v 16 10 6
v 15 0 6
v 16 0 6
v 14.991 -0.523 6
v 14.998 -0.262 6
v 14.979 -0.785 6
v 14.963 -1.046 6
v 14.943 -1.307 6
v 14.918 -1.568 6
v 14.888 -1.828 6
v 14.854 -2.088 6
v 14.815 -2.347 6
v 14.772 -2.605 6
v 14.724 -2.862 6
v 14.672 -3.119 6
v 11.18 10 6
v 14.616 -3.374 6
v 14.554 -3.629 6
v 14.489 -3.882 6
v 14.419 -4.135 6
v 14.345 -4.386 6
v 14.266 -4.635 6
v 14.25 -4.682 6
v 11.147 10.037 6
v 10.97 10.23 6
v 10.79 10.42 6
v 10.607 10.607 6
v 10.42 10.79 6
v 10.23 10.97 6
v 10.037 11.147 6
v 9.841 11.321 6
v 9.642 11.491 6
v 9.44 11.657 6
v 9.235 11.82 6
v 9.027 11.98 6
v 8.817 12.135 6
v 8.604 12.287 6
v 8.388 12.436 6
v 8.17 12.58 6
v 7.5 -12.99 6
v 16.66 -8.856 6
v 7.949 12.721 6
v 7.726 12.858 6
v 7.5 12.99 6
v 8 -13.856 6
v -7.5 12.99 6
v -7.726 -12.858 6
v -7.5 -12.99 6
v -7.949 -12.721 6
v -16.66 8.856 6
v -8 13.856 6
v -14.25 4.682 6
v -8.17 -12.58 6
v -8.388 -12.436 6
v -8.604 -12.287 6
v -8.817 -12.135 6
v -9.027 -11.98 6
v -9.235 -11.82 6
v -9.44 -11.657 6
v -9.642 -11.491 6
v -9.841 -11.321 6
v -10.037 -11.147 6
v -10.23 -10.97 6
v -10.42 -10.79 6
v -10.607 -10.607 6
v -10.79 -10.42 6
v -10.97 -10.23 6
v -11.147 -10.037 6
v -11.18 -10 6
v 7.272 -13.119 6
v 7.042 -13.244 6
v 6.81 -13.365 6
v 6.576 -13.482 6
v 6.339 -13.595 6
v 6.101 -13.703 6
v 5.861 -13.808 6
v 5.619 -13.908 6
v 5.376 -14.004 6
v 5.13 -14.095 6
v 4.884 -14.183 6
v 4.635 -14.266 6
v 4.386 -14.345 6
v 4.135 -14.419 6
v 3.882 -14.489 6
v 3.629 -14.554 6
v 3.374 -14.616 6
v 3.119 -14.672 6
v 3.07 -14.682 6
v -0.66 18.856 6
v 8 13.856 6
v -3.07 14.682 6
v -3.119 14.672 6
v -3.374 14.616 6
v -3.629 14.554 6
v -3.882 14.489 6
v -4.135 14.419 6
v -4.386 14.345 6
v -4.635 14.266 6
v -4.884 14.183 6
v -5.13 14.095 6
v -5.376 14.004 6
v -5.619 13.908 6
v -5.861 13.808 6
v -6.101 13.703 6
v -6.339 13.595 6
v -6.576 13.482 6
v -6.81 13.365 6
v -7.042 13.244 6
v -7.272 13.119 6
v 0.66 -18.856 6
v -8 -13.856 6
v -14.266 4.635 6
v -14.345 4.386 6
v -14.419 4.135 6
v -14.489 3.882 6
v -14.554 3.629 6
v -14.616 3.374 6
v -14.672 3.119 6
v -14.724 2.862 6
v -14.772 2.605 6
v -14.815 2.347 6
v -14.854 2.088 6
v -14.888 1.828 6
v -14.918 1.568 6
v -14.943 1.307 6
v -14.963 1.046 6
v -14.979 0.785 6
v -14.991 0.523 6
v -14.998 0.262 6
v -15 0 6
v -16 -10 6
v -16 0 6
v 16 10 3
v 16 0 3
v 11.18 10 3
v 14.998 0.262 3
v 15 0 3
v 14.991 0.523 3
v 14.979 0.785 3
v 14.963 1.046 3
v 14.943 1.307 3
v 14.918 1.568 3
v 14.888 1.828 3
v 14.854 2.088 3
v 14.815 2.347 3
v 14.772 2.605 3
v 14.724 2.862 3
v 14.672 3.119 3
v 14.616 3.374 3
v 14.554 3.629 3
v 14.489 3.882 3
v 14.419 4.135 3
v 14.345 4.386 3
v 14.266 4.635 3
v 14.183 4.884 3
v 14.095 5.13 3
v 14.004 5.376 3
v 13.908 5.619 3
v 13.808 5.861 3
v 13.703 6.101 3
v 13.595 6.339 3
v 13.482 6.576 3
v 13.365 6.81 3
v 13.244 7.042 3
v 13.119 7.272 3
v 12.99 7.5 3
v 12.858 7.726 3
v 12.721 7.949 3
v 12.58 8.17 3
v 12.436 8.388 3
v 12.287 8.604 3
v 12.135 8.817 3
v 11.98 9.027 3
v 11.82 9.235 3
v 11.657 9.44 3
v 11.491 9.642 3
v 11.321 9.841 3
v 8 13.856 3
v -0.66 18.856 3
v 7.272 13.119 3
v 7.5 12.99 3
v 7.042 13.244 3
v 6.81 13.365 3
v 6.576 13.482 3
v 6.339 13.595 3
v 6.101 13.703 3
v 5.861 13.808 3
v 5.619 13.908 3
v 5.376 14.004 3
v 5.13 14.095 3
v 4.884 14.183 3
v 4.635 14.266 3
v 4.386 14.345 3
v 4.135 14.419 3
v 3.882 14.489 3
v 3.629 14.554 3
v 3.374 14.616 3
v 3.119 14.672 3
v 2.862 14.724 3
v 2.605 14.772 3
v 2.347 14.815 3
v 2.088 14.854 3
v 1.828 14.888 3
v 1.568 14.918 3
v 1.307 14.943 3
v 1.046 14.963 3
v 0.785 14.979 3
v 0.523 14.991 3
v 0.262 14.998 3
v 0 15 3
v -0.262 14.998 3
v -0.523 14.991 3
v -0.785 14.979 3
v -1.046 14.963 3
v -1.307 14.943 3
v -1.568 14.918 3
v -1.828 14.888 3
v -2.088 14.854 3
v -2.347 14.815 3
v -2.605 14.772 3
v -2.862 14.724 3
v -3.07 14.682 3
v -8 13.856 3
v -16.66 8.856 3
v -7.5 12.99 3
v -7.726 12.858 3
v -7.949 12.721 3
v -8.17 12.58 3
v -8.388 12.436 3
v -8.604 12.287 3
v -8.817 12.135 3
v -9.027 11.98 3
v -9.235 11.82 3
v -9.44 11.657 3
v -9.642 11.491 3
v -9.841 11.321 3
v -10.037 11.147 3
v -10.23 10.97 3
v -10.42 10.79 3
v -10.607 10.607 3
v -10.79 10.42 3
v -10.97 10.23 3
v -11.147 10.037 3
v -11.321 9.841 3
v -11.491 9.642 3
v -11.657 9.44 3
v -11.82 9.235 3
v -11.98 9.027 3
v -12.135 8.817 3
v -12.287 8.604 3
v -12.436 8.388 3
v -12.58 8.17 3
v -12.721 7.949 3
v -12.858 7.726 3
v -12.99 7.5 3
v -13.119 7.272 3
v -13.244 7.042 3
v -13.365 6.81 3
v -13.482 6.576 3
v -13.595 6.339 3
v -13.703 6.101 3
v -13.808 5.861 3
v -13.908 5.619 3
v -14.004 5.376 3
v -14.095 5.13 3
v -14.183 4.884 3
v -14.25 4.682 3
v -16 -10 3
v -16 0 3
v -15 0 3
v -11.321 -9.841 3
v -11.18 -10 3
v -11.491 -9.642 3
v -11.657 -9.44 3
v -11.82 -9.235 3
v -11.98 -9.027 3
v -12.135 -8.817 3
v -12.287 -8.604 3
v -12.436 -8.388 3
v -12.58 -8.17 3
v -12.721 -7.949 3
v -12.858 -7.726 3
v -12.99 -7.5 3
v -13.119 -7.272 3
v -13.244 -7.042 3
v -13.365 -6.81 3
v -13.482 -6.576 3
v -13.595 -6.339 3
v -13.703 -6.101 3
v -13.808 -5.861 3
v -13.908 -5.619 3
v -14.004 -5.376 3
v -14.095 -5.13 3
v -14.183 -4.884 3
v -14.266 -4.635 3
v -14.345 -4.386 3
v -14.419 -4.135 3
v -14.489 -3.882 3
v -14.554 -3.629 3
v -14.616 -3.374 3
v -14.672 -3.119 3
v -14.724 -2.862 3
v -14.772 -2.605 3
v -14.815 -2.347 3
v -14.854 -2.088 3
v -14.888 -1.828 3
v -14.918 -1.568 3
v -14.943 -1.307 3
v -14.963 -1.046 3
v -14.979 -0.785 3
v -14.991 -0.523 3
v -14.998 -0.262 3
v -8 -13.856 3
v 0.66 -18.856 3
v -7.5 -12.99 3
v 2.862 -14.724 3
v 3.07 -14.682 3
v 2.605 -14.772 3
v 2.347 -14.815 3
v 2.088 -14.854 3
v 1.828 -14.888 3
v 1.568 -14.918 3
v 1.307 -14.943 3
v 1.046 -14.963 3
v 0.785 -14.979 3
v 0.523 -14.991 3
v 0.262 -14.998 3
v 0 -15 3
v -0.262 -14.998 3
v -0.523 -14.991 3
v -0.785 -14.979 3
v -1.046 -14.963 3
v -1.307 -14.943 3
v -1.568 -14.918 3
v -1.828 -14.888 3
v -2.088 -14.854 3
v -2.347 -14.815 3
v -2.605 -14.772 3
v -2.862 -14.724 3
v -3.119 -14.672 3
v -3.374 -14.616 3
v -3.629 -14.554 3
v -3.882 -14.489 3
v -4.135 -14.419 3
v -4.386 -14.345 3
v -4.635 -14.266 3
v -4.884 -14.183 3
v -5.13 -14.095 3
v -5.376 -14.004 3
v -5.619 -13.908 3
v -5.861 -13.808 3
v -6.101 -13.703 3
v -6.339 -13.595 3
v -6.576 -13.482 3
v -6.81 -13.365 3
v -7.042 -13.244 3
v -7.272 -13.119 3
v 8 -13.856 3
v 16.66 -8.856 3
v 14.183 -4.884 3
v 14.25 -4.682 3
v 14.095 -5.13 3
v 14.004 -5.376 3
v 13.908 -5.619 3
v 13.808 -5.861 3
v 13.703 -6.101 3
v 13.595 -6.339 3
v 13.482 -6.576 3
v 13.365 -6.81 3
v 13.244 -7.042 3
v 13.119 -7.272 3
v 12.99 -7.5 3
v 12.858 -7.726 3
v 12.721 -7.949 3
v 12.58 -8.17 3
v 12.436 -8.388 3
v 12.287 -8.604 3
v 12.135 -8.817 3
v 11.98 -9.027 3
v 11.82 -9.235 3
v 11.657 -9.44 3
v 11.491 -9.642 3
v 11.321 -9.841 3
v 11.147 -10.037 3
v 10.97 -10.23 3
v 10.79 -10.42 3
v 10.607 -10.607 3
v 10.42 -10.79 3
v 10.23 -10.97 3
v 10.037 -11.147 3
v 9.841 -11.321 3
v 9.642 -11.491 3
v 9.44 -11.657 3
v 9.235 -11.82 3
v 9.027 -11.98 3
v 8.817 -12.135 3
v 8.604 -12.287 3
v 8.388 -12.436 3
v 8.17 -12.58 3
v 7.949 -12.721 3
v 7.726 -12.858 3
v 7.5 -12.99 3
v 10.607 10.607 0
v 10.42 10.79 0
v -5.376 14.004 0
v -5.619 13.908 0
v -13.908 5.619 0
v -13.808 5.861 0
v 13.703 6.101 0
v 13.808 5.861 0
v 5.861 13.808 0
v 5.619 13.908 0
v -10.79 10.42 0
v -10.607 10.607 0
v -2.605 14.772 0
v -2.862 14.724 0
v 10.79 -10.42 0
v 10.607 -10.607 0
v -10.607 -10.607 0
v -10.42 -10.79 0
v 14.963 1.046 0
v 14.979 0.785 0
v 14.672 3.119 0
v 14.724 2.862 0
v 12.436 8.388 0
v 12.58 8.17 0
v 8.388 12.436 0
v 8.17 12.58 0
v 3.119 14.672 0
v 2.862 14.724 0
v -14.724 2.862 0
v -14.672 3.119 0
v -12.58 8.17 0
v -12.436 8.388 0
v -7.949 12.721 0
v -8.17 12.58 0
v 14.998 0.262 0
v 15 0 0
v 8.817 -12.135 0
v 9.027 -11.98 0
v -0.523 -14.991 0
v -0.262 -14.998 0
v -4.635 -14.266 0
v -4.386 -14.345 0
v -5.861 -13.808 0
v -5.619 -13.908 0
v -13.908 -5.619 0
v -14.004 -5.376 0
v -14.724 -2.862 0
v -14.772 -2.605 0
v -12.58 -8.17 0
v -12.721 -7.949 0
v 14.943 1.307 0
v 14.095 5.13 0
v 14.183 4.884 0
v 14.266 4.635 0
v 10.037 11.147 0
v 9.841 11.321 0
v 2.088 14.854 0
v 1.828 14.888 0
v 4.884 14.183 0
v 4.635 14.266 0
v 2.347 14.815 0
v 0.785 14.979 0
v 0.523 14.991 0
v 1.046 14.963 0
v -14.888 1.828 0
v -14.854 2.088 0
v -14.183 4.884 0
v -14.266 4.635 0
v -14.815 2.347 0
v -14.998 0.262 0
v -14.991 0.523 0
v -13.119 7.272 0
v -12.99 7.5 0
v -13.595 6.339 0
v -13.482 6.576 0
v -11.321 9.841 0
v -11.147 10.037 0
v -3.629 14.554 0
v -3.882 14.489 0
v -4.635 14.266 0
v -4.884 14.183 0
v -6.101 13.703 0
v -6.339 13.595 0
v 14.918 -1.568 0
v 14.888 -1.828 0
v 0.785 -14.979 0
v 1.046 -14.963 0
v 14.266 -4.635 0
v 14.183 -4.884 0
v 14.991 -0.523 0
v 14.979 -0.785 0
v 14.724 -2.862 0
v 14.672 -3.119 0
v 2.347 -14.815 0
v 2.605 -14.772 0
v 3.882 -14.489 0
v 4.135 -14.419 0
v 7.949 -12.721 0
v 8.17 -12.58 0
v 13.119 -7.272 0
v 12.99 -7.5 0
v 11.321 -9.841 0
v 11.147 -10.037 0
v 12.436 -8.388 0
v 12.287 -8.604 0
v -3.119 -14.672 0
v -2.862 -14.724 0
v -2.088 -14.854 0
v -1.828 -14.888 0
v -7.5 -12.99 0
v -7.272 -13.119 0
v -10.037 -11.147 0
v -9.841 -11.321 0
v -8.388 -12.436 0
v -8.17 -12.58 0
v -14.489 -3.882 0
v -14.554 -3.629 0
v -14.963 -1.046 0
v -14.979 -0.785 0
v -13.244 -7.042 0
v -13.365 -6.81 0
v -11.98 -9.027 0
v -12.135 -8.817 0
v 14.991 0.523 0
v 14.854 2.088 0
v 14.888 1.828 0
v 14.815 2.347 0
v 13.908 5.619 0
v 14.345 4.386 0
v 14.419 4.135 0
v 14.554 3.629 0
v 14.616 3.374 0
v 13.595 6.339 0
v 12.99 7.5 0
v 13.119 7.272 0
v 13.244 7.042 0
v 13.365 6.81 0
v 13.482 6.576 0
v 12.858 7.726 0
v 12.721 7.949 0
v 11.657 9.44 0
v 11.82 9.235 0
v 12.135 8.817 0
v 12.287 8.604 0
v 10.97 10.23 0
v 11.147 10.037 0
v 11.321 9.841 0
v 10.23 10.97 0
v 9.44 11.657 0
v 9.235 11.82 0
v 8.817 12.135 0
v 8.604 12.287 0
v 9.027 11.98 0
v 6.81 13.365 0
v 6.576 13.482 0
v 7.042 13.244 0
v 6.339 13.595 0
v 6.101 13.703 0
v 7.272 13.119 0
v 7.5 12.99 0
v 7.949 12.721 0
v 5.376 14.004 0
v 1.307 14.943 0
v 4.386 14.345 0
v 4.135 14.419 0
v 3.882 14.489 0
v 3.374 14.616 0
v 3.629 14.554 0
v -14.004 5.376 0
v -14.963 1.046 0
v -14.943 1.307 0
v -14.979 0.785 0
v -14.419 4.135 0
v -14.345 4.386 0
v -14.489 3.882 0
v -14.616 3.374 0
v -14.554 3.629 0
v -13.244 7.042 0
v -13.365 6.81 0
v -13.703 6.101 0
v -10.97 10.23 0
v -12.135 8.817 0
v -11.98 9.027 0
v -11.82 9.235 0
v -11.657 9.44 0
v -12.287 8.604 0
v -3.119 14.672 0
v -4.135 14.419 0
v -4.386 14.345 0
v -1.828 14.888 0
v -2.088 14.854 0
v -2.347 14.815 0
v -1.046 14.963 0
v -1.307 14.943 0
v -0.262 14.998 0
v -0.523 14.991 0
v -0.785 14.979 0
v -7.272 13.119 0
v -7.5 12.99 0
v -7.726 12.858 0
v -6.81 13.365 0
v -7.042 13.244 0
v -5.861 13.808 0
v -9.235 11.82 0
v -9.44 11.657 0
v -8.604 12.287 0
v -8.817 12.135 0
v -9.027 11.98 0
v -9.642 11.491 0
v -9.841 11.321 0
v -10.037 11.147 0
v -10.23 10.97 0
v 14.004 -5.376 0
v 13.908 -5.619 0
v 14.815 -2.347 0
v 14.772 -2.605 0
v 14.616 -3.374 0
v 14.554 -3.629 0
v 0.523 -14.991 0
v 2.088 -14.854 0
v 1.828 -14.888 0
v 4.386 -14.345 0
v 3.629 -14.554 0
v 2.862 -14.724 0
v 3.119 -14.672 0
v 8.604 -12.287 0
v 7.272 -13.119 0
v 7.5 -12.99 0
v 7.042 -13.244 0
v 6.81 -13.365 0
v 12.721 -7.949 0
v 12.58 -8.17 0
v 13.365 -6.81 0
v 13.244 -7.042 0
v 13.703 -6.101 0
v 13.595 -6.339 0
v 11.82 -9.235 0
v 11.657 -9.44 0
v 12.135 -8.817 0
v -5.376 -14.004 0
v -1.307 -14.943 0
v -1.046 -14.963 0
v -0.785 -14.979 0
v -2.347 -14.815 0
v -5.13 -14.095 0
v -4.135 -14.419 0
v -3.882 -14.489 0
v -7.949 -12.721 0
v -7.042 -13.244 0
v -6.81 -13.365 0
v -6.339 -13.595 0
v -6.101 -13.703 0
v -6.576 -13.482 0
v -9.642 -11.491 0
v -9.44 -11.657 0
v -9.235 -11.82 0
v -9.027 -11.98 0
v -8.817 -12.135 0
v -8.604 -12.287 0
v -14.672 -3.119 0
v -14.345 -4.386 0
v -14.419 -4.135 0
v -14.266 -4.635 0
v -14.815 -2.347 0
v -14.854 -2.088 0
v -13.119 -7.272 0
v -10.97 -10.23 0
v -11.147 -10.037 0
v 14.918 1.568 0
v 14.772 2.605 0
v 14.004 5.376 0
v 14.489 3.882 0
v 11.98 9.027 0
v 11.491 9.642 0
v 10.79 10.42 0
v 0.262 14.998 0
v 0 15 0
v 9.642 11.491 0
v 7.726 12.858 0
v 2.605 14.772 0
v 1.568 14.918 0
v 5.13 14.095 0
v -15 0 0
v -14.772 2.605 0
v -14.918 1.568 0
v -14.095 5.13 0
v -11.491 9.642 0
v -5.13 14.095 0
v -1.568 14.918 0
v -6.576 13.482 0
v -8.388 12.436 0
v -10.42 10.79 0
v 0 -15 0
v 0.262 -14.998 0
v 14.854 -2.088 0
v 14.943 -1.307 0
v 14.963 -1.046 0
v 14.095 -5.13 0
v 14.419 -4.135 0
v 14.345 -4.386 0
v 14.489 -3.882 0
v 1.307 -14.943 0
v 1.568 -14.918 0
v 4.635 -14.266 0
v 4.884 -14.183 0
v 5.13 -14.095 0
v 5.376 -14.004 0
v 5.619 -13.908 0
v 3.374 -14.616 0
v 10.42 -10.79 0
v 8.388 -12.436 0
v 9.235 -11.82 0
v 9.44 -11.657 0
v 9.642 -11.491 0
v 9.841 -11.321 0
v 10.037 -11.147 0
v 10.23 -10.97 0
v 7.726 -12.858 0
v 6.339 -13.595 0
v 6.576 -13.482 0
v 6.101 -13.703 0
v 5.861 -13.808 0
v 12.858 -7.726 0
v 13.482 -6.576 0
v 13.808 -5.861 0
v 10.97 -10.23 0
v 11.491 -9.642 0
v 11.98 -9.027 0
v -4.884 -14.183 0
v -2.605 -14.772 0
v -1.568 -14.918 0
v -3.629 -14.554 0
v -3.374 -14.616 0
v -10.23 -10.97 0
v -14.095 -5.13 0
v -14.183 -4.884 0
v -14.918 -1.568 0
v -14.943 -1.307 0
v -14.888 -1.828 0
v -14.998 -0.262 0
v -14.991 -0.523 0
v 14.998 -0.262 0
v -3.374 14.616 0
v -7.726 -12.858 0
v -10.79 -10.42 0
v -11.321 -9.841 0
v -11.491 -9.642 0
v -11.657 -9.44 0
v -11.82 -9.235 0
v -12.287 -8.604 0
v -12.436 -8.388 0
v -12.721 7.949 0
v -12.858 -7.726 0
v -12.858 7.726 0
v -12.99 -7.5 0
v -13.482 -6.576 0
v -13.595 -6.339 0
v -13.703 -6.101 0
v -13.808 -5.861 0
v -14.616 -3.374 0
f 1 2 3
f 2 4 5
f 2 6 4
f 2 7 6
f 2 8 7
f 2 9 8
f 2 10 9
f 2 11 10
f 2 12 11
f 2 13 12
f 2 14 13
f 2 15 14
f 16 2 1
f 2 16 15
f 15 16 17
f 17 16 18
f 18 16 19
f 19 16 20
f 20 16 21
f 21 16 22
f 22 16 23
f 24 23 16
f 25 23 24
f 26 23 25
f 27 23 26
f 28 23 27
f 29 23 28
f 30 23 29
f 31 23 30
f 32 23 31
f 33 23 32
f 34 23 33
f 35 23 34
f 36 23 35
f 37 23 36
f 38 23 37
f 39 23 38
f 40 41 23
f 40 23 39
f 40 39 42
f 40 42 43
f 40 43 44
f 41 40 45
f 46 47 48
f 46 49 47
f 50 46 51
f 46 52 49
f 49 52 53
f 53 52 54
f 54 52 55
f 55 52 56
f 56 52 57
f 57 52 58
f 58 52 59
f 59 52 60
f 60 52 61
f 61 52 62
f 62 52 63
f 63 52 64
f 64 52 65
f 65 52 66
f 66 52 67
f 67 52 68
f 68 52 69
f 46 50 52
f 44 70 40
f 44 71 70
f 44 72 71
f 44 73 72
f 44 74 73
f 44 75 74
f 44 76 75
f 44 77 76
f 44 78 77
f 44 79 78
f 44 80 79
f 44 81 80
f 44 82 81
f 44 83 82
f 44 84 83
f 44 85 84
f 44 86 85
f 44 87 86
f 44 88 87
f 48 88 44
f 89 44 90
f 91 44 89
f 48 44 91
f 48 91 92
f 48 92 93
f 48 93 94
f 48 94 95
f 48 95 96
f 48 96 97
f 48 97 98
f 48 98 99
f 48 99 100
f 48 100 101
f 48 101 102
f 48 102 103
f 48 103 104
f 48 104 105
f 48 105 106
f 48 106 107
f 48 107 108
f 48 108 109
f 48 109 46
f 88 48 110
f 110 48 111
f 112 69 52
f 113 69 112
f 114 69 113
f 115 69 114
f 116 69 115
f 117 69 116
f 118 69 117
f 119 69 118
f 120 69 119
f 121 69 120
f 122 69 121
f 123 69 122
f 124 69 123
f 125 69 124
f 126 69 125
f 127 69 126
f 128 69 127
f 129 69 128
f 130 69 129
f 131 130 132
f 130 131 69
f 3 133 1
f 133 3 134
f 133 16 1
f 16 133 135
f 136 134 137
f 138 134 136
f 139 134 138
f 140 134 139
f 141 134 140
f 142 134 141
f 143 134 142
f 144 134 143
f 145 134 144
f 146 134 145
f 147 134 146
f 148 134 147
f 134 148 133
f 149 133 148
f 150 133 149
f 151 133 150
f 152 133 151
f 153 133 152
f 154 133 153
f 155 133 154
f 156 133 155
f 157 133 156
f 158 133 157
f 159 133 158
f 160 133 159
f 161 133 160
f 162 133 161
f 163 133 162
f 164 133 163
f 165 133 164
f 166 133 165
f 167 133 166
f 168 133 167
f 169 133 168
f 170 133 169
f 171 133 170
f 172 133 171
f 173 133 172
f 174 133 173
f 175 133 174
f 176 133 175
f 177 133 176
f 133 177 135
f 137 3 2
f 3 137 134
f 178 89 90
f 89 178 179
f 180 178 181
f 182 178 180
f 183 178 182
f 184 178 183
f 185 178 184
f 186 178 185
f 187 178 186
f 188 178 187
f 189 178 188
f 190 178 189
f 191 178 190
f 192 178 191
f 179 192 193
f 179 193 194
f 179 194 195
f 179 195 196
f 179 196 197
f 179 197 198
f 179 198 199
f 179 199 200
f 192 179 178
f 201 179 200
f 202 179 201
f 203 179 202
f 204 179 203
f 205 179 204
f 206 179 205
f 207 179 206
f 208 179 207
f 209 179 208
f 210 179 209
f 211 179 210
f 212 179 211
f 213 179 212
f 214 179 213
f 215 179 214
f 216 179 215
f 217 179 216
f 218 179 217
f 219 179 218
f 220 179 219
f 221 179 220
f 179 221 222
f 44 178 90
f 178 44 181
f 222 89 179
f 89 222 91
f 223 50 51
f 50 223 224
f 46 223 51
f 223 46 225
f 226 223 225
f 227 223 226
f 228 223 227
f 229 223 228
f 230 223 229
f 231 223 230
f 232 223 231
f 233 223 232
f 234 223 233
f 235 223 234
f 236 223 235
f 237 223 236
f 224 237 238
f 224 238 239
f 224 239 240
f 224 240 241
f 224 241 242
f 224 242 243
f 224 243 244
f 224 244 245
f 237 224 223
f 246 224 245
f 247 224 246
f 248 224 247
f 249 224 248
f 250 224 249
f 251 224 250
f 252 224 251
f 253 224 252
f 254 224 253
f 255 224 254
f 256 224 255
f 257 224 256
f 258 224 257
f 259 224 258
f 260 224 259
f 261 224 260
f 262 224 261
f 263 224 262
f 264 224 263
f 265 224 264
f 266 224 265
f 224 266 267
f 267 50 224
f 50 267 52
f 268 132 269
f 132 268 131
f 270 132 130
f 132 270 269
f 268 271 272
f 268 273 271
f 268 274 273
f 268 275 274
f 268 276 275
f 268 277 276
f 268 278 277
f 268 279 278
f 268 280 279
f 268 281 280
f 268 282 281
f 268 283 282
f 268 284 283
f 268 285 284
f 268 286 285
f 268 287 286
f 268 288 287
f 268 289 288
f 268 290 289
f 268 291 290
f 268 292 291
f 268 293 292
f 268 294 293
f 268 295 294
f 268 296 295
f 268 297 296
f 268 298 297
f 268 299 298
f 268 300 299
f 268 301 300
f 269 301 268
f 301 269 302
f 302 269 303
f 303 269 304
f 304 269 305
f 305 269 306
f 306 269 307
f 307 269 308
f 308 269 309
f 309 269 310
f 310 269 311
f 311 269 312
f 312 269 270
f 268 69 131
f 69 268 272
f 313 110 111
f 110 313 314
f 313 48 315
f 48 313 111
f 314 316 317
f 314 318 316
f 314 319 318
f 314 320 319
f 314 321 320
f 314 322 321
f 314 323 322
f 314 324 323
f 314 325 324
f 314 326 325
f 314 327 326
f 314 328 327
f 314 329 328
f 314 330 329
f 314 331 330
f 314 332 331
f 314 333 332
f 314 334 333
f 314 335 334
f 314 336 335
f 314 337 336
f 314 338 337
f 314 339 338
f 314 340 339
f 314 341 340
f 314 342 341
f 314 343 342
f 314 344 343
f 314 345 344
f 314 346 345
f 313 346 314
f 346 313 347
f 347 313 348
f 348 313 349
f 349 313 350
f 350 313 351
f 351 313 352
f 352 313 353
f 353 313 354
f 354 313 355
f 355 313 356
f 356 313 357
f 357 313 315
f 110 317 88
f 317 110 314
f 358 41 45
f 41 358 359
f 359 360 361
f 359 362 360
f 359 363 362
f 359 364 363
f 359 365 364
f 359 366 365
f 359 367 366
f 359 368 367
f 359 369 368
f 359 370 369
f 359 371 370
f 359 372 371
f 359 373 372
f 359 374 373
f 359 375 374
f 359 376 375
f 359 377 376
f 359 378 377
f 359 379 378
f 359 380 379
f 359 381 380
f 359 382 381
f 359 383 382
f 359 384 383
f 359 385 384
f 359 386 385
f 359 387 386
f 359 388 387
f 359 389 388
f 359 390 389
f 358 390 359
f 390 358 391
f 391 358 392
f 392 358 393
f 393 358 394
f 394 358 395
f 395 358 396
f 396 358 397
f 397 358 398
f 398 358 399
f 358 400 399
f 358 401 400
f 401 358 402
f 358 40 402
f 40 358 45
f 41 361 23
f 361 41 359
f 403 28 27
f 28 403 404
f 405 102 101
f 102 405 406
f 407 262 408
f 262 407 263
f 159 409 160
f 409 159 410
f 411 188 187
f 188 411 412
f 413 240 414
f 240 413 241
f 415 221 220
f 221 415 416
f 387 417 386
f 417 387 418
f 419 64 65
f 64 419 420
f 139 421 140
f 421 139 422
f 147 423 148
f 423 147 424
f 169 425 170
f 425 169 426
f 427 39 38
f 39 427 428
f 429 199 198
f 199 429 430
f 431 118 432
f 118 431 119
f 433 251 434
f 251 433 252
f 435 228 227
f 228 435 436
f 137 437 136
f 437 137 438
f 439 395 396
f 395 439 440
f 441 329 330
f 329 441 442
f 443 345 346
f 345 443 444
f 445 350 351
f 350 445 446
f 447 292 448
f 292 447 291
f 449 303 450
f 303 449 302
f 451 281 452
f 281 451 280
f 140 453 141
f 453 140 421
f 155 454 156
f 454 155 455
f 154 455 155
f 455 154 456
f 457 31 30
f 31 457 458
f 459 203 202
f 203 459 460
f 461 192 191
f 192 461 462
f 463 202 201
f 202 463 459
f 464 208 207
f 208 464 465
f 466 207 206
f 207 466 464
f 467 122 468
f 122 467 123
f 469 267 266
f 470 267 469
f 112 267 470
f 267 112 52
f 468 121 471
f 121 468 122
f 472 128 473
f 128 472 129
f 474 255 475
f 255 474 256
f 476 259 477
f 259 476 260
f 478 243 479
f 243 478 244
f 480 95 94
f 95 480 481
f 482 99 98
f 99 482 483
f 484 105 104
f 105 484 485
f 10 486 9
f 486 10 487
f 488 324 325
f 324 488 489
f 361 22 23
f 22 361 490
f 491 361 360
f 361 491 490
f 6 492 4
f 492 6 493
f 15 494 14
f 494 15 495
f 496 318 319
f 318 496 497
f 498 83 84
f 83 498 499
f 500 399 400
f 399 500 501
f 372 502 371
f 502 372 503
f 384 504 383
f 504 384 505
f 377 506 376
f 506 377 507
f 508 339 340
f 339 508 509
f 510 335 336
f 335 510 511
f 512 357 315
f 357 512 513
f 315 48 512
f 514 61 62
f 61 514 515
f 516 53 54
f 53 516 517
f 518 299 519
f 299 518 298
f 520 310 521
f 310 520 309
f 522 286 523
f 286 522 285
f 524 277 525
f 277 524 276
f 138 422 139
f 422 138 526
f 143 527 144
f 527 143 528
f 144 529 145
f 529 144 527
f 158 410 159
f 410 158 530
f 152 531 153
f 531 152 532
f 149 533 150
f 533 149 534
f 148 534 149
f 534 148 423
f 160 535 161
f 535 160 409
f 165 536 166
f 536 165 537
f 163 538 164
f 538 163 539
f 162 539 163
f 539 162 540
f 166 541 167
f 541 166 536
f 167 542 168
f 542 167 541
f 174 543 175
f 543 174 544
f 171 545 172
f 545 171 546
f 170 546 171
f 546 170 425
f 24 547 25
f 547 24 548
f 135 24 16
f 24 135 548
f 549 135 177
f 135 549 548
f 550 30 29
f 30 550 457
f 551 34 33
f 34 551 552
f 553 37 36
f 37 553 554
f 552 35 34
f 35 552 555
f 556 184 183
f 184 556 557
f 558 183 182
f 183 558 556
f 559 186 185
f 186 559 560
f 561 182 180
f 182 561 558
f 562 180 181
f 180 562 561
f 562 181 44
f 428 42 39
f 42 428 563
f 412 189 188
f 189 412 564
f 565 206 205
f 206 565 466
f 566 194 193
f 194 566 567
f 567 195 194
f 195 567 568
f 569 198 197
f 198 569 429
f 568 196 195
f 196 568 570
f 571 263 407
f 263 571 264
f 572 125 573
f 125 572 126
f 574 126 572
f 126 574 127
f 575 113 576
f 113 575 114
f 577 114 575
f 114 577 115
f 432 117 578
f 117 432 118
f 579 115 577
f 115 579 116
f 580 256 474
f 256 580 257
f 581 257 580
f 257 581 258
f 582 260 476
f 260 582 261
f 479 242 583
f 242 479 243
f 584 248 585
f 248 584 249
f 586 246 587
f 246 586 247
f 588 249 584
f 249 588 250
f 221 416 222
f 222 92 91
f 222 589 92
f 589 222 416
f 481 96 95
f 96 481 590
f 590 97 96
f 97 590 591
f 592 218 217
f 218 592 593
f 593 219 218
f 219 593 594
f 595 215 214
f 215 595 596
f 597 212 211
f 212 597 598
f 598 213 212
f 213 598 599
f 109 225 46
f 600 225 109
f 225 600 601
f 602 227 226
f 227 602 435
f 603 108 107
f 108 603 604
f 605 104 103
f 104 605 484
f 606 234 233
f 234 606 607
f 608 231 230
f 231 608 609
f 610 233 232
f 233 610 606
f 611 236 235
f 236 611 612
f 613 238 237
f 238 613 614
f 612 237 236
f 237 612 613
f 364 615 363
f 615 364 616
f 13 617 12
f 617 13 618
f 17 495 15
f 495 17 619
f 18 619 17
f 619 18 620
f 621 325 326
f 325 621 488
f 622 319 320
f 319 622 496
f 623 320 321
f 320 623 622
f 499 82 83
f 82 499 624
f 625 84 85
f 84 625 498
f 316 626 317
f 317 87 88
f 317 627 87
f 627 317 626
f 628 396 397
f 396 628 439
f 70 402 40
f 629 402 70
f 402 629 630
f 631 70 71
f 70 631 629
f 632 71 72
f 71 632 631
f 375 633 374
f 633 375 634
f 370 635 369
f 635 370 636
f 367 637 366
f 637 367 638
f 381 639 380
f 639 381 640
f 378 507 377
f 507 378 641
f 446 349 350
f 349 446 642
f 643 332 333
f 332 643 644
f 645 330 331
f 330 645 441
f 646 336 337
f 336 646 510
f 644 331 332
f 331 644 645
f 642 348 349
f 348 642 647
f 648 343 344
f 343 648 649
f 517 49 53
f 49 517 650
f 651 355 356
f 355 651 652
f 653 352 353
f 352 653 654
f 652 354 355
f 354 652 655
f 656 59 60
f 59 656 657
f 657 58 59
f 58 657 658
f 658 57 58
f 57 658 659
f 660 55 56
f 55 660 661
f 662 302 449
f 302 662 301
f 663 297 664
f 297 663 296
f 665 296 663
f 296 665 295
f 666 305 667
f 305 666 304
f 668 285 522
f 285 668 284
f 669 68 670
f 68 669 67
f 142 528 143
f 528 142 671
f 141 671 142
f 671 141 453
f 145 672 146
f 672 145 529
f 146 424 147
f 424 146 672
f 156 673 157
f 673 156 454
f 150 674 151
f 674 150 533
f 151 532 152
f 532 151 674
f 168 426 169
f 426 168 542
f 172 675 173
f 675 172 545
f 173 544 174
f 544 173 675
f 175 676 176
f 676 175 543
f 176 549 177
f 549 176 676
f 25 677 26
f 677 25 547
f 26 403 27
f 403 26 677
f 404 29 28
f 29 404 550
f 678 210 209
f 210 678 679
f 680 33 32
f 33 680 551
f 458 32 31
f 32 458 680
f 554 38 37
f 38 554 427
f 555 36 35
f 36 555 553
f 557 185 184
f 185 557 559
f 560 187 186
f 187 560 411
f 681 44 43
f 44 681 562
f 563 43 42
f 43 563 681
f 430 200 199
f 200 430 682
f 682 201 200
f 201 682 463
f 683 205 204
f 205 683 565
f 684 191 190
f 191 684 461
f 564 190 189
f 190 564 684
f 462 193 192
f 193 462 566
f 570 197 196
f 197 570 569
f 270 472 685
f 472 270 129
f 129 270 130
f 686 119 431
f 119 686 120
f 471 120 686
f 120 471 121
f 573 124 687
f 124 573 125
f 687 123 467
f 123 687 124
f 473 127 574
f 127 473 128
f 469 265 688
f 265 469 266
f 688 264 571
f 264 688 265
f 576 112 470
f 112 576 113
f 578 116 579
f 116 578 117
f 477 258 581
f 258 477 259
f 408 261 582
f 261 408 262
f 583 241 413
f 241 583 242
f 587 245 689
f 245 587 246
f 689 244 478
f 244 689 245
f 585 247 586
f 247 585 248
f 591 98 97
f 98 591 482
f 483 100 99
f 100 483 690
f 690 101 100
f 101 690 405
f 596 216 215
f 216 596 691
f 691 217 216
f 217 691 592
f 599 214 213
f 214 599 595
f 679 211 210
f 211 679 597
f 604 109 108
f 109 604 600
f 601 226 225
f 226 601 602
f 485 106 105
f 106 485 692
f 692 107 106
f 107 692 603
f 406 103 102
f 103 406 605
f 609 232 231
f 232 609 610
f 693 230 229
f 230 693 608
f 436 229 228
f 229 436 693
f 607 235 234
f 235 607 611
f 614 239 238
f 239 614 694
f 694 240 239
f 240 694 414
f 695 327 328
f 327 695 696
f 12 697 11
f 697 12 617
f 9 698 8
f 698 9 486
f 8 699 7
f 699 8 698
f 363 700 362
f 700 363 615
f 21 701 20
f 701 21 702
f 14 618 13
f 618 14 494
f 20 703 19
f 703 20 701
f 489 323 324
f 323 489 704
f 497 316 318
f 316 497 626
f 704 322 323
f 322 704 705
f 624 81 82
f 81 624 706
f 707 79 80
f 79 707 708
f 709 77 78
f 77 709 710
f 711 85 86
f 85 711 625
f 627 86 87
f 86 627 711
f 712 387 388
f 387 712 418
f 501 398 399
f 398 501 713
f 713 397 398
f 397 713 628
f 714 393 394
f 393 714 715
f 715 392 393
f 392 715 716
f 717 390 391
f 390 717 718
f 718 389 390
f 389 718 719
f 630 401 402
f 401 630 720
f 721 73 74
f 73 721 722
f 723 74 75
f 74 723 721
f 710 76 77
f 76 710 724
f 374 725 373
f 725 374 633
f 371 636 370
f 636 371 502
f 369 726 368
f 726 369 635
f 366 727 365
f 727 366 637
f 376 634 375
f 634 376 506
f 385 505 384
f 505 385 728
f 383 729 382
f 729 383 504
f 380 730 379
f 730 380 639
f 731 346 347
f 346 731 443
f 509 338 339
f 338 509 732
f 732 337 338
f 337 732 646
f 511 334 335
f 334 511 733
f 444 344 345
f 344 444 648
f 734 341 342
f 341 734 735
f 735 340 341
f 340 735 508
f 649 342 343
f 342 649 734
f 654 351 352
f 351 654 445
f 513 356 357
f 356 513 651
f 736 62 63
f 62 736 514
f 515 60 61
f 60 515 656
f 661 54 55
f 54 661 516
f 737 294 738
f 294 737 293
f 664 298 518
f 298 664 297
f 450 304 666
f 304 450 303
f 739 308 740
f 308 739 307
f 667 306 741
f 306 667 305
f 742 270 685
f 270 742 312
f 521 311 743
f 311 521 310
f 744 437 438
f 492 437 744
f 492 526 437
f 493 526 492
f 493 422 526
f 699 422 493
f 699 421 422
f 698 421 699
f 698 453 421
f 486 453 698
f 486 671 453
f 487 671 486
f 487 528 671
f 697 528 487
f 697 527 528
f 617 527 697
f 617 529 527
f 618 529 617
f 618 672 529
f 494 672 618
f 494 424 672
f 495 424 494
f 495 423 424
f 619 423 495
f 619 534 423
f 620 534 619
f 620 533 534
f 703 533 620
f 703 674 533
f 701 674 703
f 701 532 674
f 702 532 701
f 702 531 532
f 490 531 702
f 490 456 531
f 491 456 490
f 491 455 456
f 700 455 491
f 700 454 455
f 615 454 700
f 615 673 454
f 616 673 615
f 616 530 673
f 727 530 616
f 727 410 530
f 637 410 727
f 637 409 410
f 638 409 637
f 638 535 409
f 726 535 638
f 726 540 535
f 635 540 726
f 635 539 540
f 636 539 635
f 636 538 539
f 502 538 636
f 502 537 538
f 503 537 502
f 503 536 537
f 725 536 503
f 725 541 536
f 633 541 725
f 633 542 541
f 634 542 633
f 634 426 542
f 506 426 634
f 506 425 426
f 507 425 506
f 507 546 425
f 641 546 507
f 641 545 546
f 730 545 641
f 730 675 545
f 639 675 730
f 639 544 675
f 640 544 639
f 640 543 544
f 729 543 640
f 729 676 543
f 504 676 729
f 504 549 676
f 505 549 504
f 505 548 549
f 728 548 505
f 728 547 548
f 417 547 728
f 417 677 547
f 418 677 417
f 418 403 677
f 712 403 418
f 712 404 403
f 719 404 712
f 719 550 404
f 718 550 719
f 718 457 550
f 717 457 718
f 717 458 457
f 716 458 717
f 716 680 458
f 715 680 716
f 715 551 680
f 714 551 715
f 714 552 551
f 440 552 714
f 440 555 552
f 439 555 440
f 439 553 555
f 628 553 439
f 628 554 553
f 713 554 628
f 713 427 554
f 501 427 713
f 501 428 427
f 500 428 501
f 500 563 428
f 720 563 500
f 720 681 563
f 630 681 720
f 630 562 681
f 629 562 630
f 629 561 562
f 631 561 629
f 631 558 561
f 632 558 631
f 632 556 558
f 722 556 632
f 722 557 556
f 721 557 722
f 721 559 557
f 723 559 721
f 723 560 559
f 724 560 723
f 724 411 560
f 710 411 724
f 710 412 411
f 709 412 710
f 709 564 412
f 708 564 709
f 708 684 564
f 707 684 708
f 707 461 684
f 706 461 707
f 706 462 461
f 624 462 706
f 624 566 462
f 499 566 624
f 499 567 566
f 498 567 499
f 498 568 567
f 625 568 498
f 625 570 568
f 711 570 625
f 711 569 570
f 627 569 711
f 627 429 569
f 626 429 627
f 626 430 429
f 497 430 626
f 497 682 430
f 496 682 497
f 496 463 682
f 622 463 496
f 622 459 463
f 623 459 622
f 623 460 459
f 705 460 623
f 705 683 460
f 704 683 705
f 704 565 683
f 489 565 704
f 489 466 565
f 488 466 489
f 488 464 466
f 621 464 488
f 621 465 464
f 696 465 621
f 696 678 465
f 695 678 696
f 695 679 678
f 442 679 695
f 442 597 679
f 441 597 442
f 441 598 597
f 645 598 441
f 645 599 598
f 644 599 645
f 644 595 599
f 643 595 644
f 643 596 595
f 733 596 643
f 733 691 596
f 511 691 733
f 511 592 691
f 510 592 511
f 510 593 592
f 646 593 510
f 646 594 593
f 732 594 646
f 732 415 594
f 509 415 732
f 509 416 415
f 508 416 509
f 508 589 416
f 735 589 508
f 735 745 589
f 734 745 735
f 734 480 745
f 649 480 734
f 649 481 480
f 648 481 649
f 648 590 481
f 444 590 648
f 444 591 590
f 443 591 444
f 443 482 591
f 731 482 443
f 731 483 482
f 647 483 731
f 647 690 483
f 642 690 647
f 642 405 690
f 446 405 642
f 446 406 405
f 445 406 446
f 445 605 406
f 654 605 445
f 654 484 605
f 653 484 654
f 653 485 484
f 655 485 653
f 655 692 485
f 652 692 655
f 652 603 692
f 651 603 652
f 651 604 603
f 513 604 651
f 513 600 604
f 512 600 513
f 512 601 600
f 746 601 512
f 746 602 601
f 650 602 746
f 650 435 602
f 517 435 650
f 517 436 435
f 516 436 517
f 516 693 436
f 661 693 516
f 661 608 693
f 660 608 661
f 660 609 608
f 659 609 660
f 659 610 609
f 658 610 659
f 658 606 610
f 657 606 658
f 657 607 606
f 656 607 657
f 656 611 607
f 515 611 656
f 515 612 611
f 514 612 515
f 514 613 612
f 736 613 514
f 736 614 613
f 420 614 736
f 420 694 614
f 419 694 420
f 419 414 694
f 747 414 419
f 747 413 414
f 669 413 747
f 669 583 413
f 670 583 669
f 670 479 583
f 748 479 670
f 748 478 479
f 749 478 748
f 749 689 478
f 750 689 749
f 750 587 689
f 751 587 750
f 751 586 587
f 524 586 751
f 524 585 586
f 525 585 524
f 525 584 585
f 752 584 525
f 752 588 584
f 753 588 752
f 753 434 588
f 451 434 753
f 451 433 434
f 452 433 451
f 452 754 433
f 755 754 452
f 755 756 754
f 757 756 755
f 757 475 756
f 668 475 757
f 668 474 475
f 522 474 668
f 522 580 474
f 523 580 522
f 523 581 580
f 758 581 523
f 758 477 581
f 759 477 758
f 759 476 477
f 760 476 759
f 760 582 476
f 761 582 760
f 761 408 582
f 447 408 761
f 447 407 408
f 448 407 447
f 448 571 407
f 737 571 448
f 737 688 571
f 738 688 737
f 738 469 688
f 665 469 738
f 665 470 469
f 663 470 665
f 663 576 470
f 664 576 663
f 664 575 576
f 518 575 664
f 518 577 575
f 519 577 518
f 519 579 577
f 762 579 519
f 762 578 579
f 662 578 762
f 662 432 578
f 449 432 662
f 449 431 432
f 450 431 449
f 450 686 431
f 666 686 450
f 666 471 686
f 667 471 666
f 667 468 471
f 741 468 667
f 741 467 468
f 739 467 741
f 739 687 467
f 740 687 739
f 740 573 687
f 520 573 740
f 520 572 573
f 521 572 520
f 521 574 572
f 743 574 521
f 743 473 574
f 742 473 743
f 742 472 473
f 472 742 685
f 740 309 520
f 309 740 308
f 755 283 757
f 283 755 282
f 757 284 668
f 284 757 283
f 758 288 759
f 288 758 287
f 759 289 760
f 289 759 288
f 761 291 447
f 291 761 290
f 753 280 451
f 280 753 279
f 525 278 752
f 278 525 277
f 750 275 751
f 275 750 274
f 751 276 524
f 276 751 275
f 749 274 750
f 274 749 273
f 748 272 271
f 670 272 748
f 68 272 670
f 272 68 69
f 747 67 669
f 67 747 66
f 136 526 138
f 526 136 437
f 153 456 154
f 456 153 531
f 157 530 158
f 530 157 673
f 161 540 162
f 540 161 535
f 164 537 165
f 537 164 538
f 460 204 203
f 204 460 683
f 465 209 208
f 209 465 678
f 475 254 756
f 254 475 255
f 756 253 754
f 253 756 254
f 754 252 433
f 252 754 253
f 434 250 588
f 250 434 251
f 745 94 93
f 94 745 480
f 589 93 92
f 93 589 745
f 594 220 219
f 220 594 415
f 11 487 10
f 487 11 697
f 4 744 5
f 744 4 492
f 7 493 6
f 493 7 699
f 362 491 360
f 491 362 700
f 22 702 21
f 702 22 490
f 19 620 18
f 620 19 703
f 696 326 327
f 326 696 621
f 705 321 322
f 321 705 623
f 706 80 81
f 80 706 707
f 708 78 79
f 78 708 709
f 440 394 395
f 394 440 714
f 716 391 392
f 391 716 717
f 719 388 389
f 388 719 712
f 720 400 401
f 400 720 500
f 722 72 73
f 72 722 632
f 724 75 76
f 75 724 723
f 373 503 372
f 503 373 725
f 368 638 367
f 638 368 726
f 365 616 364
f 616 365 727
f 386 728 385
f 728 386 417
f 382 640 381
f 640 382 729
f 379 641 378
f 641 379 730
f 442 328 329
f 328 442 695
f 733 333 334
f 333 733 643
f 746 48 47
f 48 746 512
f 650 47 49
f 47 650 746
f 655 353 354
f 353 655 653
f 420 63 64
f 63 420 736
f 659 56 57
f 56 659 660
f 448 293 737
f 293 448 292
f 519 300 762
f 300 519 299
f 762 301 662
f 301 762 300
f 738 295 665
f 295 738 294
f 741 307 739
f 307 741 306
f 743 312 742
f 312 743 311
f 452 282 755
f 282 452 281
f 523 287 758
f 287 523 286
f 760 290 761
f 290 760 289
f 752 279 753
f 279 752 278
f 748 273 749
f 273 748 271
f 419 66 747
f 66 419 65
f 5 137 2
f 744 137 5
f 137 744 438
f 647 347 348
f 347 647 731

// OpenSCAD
$fn = 360;

union() {
for (a =[0:60:360]){ rotate([0,0,a]) Overhang();}
cylinder(h = 6, r1 = 15, r2 = 15, center = false);
}

module Overhang(){
        translate([10, 0, 3])
            cube([6, 10, 3]);
}
